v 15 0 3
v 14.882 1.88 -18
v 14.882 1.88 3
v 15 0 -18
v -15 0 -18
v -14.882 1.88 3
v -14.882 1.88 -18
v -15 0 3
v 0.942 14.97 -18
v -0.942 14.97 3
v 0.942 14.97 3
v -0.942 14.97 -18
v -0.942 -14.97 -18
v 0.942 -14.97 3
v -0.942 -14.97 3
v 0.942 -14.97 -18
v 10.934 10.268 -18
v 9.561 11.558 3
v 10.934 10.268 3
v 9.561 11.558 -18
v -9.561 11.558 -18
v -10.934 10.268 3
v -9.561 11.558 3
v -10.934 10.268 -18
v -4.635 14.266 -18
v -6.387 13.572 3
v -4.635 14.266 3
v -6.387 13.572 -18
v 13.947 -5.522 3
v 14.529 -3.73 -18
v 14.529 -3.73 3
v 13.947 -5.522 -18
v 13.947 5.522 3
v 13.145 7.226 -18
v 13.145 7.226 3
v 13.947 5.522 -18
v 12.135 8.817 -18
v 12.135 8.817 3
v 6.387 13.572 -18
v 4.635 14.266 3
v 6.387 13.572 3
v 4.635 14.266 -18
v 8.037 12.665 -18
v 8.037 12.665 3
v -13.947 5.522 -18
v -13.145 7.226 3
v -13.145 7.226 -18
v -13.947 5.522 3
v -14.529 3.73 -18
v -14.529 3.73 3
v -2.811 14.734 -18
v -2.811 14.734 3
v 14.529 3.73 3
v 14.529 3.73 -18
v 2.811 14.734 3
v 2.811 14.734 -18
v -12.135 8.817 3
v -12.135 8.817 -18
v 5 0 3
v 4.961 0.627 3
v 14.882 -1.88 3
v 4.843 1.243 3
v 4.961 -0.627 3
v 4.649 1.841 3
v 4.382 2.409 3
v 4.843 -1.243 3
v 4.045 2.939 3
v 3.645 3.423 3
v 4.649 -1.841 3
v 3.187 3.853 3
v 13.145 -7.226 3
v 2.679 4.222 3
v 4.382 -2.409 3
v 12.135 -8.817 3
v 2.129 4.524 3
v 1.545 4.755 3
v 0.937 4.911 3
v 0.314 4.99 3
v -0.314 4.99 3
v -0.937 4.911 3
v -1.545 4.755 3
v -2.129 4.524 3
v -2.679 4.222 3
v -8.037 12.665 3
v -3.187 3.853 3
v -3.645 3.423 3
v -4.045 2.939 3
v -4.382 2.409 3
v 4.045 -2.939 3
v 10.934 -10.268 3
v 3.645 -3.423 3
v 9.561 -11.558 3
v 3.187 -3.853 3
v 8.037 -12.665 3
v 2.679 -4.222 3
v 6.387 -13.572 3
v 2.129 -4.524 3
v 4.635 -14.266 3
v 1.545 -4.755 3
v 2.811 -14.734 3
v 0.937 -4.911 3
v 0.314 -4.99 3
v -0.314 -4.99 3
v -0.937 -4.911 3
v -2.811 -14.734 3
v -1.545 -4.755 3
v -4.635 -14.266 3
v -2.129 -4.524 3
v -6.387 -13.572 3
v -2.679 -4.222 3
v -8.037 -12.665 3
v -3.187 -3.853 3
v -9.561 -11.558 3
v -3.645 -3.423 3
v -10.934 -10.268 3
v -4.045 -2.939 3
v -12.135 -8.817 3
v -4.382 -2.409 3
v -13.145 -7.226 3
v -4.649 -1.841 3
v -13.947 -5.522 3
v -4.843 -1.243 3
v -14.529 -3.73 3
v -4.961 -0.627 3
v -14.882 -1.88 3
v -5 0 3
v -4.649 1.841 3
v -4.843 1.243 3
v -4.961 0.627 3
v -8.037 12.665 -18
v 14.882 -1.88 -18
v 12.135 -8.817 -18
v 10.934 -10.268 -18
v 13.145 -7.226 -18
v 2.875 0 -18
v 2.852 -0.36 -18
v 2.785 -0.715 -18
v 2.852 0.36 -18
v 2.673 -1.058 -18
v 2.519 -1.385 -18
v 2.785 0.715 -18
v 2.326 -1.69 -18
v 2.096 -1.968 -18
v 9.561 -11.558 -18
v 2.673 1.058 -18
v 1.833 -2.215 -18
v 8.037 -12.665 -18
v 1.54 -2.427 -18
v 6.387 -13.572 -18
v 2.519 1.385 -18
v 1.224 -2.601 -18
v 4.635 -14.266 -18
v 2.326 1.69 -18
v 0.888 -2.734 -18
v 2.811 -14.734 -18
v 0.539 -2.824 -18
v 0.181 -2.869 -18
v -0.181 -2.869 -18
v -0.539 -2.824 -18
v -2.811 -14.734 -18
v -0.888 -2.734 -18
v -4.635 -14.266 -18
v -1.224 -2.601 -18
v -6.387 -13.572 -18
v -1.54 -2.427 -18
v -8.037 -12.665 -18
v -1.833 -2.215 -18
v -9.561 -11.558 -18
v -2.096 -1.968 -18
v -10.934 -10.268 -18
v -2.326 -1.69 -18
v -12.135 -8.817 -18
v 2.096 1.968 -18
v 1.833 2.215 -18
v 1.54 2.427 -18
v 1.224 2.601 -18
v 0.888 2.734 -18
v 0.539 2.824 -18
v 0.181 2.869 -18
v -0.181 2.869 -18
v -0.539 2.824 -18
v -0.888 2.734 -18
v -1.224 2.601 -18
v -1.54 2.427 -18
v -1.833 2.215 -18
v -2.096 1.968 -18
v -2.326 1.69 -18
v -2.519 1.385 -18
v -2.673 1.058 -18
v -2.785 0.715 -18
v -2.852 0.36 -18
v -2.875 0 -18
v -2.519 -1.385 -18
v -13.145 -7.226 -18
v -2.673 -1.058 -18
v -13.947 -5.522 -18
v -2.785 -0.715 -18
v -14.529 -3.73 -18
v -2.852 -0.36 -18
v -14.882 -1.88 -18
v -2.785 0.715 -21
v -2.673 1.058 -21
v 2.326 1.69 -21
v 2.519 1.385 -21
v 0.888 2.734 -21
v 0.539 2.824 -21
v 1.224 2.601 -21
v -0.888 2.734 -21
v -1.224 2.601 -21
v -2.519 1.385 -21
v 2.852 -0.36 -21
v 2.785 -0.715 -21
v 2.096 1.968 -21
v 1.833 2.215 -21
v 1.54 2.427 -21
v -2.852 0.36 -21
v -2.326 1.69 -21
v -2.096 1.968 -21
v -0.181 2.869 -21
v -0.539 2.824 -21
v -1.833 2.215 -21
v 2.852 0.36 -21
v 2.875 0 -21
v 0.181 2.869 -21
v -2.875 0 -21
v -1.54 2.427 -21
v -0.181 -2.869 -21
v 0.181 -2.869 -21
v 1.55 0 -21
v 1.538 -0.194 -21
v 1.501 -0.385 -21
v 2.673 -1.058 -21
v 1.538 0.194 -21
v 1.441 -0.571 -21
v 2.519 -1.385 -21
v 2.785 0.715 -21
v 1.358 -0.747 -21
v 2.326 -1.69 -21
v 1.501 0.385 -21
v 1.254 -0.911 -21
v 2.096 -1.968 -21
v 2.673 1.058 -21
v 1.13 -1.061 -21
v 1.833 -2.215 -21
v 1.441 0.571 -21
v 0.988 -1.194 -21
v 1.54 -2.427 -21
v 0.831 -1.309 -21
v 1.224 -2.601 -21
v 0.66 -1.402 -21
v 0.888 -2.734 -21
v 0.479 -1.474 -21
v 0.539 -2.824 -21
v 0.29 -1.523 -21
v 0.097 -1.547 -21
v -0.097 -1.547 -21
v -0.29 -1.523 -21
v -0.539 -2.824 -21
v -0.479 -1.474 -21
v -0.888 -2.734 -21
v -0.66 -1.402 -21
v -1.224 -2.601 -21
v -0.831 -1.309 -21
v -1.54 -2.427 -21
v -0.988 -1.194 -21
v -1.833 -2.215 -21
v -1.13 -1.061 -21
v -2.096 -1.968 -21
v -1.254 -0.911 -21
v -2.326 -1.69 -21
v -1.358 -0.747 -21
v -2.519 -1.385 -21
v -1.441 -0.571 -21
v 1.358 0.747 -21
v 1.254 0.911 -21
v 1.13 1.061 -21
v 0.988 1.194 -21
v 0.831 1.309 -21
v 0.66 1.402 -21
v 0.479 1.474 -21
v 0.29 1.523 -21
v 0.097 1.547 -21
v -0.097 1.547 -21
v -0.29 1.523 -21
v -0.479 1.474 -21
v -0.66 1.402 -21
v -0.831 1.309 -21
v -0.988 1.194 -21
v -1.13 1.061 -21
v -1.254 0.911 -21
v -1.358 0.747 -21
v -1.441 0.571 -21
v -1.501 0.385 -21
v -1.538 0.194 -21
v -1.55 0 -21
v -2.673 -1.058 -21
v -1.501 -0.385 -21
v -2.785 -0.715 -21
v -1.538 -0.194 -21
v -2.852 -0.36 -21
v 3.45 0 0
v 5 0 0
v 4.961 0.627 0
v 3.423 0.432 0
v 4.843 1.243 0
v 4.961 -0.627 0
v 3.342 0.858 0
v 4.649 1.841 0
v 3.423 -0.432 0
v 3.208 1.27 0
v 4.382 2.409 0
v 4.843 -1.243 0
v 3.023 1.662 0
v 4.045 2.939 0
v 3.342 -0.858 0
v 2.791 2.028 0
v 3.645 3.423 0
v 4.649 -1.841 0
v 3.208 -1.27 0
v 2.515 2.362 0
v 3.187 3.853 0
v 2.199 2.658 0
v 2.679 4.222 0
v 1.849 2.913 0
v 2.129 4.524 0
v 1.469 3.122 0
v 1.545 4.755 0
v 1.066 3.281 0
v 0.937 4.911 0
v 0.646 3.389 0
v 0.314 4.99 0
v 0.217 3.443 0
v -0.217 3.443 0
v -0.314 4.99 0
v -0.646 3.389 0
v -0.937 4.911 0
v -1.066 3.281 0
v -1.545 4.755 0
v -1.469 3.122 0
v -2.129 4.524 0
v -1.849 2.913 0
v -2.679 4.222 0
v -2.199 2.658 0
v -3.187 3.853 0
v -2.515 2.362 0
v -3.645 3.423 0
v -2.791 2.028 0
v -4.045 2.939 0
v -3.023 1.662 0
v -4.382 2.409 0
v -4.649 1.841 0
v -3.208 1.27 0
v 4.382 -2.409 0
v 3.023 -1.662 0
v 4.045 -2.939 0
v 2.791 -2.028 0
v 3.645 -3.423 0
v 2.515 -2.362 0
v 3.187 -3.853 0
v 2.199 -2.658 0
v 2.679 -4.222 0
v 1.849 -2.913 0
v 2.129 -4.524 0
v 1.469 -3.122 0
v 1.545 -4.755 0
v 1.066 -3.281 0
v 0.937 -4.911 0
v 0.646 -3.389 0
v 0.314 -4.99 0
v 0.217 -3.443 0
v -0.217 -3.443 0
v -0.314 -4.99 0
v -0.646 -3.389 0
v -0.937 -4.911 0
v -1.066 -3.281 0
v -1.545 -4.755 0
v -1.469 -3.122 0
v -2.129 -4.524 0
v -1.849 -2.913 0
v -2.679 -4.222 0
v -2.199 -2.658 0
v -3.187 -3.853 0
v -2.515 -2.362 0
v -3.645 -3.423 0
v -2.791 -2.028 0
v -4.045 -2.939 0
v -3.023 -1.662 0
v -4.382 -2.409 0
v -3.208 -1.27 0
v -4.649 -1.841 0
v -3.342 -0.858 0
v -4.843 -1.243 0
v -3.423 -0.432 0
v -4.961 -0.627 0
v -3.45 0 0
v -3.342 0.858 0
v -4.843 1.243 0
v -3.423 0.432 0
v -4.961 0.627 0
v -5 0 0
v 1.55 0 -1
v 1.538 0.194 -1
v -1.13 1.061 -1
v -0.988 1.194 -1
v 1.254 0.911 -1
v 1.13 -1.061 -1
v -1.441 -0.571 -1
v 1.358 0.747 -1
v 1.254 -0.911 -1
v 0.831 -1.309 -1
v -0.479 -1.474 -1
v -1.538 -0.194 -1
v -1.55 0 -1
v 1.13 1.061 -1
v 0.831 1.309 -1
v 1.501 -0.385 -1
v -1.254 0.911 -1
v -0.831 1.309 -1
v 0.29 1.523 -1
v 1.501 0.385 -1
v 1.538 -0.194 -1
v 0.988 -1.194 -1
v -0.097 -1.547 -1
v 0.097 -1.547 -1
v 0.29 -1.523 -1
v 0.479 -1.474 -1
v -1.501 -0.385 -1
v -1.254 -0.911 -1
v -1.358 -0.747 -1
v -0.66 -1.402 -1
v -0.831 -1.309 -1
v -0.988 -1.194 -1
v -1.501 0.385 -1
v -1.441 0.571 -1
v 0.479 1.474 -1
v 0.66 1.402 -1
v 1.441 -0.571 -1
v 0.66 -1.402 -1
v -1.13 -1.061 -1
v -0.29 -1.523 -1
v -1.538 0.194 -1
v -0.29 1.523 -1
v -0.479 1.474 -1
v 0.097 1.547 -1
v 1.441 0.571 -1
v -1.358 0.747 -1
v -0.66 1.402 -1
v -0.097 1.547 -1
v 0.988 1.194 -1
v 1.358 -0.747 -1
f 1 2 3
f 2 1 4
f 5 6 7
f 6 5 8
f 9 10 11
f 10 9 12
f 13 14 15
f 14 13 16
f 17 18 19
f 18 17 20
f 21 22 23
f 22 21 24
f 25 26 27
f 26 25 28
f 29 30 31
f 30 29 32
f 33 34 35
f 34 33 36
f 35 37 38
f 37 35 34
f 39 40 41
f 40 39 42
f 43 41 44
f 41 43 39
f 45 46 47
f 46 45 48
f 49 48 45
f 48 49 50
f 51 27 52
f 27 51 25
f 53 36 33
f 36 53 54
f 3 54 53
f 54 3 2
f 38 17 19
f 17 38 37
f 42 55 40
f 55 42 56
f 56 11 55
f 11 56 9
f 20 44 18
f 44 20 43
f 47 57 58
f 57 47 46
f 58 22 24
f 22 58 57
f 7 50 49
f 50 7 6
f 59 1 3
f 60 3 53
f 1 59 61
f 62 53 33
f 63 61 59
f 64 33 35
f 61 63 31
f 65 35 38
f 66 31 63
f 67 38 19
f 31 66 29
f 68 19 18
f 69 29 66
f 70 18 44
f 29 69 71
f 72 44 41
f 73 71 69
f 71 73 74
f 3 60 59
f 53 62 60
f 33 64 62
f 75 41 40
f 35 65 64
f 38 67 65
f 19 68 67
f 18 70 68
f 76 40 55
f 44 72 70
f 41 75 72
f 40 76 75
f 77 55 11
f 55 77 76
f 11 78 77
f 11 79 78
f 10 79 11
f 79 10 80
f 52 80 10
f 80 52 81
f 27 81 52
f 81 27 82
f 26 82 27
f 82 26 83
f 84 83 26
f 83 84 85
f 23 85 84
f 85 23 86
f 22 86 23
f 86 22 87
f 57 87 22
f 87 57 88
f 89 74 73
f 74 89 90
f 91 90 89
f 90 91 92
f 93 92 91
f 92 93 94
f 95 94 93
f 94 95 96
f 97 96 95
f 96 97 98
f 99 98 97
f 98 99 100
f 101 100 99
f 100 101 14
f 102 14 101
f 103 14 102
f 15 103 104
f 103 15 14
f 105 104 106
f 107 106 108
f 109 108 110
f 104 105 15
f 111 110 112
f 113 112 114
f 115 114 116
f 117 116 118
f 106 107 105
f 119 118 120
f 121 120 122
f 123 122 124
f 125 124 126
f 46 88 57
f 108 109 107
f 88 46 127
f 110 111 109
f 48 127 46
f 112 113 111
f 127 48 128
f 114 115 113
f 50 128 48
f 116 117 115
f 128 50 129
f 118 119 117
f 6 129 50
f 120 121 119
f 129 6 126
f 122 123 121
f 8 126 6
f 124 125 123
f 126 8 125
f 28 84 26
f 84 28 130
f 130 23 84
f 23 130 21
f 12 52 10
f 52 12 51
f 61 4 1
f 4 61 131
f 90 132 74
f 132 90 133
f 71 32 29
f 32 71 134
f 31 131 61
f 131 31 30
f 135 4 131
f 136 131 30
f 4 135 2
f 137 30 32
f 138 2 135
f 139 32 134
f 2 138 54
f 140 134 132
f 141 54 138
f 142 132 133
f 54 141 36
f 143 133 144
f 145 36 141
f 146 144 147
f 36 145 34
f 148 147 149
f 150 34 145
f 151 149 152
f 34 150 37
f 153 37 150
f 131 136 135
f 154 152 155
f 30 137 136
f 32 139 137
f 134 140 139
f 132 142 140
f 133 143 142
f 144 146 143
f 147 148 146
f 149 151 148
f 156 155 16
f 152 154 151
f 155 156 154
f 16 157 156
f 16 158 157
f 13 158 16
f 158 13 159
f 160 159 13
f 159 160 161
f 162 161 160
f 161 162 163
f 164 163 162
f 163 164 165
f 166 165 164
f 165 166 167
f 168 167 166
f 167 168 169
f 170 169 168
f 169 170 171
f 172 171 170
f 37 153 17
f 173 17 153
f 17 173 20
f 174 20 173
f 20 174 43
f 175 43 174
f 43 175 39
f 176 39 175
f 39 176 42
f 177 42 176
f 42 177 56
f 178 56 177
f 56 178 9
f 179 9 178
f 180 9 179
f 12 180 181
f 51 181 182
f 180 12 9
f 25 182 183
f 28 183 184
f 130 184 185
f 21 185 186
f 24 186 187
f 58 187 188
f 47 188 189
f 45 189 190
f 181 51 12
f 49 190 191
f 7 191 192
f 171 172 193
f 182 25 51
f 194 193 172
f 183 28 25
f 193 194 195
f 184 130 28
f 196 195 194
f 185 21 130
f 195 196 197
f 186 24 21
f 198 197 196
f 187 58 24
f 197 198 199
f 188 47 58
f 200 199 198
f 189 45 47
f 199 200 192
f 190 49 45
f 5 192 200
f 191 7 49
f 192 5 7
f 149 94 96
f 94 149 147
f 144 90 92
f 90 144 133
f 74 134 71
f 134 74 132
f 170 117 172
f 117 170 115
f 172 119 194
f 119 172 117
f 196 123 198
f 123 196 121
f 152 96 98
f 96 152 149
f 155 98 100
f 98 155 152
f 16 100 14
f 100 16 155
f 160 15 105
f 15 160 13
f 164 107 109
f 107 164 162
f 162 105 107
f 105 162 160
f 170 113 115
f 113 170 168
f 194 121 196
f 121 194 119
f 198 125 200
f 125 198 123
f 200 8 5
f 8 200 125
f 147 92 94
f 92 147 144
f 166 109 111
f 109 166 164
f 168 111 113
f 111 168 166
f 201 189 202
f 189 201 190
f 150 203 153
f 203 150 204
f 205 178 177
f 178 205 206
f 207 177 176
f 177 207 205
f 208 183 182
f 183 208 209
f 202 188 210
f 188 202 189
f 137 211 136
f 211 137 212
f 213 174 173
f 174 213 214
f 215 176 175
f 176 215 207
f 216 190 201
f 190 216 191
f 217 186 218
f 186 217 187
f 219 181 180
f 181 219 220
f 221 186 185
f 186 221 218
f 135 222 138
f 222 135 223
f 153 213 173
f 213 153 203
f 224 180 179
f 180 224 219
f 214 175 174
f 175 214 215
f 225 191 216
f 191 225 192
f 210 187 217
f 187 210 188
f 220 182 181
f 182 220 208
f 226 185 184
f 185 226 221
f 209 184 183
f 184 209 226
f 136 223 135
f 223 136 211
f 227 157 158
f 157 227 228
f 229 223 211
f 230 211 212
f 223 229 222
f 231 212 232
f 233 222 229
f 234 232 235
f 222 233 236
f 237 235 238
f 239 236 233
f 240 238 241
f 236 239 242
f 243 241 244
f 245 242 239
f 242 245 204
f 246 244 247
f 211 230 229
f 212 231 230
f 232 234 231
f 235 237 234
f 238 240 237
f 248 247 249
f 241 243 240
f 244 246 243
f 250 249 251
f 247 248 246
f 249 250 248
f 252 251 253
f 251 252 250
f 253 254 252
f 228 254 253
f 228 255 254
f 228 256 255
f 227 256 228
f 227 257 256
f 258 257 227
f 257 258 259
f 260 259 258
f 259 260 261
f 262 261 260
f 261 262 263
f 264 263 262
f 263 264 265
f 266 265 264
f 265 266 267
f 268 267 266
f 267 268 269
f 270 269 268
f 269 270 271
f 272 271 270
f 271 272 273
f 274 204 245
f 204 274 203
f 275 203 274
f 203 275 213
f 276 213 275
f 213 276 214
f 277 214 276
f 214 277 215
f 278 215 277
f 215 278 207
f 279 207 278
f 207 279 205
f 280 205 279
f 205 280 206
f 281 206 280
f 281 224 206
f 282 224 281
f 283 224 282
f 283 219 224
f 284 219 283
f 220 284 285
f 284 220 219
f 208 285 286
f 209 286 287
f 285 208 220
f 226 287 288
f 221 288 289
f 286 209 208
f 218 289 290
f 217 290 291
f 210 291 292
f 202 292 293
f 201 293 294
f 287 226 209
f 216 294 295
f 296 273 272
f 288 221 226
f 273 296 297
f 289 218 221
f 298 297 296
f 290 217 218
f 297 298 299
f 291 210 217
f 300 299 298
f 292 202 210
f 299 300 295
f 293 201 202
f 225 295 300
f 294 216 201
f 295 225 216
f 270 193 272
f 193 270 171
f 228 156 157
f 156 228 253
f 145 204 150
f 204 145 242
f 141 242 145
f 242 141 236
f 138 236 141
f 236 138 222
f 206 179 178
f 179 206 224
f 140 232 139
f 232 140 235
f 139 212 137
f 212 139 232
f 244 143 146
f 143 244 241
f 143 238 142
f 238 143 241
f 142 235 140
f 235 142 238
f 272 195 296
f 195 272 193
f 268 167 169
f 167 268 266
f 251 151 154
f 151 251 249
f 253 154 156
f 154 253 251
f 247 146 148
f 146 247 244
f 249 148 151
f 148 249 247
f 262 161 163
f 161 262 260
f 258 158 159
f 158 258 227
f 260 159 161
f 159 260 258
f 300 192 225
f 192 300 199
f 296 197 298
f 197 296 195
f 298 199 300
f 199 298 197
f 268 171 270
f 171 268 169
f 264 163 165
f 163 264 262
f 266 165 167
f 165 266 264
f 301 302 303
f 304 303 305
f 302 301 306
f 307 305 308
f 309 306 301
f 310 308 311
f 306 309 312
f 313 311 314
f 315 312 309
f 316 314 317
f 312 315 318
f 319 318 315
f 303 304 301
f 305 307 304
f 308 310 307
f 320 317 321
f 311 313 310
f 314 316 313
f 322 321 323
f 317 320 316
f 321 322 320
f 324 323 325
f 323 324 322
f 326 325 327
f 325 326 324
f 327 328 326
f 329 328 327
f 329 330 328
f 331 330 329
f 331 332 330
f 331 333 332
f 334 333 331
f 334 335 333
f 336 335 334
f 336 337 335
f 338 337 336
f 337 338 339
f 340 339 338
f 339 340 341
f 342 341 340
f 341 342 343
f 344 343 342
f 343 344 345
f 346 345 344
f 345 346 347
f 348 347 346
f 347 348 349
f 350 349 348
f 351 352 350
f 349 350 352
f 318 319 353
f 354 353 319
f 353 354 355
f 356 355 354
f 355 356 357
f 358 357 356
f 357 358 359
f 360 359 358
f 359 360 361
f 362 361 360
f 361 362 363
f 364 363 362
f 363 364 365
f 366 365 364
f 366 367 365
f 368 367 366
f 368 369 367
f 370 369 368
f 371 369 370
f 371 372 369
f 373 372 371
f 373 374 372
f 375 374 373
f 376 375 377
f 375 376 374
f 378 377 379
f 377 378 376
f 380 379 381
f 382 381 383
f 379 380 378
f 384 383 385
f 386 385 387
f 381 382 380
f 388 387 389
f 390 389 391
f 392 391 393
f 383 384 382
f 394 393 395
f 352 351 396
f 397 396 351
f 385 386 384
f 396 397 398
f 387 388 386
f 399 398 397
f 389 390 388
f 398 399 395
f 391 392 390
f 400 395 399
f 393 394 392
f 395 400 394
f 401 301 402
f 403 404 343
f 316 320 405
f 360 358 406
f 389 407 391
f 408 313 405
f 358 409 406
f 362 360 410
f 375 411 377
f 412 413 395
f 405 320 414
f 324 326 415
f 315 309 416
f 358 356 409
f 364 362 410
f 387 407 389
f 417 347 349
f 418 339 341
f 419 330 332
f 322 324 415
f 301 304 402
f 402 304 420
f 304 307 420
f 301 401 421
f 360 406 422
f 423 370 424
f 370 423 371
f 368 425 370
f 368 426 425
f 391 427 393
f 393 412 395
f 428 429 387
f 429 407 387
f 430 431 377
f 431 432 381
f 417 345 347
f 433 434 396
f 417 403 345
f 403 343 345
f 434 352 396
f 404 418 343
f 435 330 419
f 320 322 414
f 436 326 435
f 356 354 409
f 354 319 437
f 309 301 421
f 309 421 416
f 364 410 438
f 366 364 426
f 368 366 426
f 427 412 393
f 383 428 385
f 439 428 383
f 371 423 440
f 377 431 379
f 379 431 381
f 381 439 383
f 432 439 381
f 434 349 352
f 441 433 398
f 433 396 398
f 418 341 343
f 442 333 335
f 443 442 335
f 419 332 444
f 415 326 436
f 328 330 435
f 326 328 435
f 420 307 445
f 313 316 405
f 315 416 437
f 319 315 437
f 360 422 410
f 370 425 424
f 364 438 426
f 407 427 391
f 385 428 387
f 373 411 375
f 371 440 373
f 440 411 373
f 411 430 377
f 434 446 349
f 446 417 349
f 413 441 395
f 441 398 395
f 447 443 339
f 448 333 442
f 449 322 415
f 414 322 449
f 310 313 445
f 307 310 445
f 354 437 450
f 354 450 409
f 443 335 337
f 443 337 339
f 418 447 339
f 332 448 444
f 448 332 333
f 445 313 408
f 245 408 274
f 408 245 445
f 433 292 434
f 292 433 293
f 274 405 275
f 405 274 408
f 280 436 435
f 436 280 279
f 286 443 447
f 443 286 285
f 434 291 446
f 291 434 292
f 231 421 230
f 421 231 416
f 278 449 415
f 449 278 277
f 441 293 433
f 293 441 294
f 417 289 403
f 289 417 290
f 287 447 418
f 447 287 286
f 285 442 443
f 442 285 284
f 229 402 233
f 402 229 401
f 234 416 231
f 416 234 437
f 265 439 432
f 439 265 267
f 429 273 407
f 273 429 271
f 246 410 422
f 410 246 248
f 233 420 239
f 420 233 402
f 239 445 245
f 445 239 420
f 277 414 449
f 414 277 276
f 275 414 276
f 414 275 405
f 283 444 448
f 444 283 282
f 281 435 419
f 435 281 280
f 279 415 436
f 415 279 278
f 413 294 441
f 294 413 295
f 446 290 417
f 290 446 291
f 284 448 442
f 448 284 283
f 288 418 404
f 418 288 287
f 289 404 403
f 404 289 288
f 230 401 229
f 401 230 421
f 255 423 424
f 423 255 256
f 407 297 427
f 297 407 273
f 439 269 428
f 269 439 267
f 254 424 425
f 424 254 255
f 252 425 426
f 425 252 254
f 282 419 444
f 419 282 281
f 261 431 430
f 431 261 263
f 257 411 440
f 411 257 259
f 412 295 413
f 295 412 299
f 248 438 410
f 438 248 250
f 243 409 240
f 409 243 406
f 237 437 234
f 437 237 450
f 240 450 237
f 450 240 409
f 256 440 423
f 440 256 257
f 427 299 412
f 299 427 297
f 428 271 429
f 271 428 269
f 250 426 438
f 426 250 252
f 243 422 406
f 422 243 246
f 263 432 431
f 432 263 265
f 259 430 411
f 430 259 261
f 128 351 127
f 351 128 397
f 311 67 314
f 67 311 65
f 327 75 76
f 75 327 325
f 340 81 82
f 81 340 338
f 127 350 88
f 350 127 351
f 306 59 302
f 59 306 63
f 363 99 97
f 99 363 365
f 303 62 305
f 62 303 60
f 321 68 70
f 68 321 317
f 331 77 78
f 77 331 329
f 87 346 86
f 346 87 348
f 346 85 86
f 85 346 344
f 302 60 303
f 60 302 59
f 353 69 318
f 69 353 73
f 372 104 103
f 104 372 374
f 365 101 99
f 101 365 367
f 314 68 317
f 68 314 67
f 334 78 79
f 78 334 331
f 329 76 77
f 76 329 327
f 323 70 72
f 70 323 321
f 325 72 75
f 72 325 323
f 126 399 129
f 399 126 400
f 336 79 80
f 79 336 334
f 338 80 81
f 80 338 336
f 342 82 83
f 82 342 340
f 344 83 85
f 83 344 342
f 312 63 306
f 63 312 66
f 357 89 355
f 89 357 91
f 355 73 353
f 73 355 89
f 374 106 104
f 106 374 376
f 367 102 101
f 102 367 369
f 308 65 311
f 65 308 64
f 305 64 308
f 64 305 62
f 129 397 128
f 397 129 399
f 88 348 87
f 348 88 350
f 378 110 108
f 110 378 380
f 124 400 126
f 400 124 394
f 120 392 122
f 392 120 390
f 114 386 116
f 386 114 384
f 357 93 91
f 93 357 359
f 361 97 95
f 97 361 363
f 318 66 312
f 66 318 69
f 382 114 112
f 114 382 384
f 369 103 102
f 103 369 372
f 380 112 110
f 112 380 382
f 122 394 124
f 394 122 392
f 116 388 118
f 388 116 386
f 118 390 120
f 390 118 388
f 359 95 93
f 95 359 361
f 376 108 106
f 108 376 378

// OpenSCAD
$fn = 50;

difference() {
	union() {
		translate(v = [0, 0, -18.0]) {
			cylinder(h = 21, r = 15.0);
		}
		#translate(v = [0, 0, -21.0]) {
			cylinder(h = 21, r = 2.875);
		}
	}
	union() {
		translate(v = [0, 0, 0]) {
			rotate(a = [0, 0, 0]) {
				difference() {
					union() {
						translate(v = [0, 0, -21.0]) {
							cylinder(h = 21, r = 1.25);
						}
						translate(v = [0, 0, -1.0]) {
							cylinder(h = 1.0, r1 = 1.55, r2 = 3.45);
						}
						translate(v = [0, 0, -21.0]) {
							cylinder(h = 21, r = 1.55);
						}
						translate(v = [0, 0, -21.0]) {
							cylinder(h = 21, r = 1.25);
						}
					}
					union();
				}
			}
		}
		#cylinder(h = 3, r = 5.0);
	}
}
